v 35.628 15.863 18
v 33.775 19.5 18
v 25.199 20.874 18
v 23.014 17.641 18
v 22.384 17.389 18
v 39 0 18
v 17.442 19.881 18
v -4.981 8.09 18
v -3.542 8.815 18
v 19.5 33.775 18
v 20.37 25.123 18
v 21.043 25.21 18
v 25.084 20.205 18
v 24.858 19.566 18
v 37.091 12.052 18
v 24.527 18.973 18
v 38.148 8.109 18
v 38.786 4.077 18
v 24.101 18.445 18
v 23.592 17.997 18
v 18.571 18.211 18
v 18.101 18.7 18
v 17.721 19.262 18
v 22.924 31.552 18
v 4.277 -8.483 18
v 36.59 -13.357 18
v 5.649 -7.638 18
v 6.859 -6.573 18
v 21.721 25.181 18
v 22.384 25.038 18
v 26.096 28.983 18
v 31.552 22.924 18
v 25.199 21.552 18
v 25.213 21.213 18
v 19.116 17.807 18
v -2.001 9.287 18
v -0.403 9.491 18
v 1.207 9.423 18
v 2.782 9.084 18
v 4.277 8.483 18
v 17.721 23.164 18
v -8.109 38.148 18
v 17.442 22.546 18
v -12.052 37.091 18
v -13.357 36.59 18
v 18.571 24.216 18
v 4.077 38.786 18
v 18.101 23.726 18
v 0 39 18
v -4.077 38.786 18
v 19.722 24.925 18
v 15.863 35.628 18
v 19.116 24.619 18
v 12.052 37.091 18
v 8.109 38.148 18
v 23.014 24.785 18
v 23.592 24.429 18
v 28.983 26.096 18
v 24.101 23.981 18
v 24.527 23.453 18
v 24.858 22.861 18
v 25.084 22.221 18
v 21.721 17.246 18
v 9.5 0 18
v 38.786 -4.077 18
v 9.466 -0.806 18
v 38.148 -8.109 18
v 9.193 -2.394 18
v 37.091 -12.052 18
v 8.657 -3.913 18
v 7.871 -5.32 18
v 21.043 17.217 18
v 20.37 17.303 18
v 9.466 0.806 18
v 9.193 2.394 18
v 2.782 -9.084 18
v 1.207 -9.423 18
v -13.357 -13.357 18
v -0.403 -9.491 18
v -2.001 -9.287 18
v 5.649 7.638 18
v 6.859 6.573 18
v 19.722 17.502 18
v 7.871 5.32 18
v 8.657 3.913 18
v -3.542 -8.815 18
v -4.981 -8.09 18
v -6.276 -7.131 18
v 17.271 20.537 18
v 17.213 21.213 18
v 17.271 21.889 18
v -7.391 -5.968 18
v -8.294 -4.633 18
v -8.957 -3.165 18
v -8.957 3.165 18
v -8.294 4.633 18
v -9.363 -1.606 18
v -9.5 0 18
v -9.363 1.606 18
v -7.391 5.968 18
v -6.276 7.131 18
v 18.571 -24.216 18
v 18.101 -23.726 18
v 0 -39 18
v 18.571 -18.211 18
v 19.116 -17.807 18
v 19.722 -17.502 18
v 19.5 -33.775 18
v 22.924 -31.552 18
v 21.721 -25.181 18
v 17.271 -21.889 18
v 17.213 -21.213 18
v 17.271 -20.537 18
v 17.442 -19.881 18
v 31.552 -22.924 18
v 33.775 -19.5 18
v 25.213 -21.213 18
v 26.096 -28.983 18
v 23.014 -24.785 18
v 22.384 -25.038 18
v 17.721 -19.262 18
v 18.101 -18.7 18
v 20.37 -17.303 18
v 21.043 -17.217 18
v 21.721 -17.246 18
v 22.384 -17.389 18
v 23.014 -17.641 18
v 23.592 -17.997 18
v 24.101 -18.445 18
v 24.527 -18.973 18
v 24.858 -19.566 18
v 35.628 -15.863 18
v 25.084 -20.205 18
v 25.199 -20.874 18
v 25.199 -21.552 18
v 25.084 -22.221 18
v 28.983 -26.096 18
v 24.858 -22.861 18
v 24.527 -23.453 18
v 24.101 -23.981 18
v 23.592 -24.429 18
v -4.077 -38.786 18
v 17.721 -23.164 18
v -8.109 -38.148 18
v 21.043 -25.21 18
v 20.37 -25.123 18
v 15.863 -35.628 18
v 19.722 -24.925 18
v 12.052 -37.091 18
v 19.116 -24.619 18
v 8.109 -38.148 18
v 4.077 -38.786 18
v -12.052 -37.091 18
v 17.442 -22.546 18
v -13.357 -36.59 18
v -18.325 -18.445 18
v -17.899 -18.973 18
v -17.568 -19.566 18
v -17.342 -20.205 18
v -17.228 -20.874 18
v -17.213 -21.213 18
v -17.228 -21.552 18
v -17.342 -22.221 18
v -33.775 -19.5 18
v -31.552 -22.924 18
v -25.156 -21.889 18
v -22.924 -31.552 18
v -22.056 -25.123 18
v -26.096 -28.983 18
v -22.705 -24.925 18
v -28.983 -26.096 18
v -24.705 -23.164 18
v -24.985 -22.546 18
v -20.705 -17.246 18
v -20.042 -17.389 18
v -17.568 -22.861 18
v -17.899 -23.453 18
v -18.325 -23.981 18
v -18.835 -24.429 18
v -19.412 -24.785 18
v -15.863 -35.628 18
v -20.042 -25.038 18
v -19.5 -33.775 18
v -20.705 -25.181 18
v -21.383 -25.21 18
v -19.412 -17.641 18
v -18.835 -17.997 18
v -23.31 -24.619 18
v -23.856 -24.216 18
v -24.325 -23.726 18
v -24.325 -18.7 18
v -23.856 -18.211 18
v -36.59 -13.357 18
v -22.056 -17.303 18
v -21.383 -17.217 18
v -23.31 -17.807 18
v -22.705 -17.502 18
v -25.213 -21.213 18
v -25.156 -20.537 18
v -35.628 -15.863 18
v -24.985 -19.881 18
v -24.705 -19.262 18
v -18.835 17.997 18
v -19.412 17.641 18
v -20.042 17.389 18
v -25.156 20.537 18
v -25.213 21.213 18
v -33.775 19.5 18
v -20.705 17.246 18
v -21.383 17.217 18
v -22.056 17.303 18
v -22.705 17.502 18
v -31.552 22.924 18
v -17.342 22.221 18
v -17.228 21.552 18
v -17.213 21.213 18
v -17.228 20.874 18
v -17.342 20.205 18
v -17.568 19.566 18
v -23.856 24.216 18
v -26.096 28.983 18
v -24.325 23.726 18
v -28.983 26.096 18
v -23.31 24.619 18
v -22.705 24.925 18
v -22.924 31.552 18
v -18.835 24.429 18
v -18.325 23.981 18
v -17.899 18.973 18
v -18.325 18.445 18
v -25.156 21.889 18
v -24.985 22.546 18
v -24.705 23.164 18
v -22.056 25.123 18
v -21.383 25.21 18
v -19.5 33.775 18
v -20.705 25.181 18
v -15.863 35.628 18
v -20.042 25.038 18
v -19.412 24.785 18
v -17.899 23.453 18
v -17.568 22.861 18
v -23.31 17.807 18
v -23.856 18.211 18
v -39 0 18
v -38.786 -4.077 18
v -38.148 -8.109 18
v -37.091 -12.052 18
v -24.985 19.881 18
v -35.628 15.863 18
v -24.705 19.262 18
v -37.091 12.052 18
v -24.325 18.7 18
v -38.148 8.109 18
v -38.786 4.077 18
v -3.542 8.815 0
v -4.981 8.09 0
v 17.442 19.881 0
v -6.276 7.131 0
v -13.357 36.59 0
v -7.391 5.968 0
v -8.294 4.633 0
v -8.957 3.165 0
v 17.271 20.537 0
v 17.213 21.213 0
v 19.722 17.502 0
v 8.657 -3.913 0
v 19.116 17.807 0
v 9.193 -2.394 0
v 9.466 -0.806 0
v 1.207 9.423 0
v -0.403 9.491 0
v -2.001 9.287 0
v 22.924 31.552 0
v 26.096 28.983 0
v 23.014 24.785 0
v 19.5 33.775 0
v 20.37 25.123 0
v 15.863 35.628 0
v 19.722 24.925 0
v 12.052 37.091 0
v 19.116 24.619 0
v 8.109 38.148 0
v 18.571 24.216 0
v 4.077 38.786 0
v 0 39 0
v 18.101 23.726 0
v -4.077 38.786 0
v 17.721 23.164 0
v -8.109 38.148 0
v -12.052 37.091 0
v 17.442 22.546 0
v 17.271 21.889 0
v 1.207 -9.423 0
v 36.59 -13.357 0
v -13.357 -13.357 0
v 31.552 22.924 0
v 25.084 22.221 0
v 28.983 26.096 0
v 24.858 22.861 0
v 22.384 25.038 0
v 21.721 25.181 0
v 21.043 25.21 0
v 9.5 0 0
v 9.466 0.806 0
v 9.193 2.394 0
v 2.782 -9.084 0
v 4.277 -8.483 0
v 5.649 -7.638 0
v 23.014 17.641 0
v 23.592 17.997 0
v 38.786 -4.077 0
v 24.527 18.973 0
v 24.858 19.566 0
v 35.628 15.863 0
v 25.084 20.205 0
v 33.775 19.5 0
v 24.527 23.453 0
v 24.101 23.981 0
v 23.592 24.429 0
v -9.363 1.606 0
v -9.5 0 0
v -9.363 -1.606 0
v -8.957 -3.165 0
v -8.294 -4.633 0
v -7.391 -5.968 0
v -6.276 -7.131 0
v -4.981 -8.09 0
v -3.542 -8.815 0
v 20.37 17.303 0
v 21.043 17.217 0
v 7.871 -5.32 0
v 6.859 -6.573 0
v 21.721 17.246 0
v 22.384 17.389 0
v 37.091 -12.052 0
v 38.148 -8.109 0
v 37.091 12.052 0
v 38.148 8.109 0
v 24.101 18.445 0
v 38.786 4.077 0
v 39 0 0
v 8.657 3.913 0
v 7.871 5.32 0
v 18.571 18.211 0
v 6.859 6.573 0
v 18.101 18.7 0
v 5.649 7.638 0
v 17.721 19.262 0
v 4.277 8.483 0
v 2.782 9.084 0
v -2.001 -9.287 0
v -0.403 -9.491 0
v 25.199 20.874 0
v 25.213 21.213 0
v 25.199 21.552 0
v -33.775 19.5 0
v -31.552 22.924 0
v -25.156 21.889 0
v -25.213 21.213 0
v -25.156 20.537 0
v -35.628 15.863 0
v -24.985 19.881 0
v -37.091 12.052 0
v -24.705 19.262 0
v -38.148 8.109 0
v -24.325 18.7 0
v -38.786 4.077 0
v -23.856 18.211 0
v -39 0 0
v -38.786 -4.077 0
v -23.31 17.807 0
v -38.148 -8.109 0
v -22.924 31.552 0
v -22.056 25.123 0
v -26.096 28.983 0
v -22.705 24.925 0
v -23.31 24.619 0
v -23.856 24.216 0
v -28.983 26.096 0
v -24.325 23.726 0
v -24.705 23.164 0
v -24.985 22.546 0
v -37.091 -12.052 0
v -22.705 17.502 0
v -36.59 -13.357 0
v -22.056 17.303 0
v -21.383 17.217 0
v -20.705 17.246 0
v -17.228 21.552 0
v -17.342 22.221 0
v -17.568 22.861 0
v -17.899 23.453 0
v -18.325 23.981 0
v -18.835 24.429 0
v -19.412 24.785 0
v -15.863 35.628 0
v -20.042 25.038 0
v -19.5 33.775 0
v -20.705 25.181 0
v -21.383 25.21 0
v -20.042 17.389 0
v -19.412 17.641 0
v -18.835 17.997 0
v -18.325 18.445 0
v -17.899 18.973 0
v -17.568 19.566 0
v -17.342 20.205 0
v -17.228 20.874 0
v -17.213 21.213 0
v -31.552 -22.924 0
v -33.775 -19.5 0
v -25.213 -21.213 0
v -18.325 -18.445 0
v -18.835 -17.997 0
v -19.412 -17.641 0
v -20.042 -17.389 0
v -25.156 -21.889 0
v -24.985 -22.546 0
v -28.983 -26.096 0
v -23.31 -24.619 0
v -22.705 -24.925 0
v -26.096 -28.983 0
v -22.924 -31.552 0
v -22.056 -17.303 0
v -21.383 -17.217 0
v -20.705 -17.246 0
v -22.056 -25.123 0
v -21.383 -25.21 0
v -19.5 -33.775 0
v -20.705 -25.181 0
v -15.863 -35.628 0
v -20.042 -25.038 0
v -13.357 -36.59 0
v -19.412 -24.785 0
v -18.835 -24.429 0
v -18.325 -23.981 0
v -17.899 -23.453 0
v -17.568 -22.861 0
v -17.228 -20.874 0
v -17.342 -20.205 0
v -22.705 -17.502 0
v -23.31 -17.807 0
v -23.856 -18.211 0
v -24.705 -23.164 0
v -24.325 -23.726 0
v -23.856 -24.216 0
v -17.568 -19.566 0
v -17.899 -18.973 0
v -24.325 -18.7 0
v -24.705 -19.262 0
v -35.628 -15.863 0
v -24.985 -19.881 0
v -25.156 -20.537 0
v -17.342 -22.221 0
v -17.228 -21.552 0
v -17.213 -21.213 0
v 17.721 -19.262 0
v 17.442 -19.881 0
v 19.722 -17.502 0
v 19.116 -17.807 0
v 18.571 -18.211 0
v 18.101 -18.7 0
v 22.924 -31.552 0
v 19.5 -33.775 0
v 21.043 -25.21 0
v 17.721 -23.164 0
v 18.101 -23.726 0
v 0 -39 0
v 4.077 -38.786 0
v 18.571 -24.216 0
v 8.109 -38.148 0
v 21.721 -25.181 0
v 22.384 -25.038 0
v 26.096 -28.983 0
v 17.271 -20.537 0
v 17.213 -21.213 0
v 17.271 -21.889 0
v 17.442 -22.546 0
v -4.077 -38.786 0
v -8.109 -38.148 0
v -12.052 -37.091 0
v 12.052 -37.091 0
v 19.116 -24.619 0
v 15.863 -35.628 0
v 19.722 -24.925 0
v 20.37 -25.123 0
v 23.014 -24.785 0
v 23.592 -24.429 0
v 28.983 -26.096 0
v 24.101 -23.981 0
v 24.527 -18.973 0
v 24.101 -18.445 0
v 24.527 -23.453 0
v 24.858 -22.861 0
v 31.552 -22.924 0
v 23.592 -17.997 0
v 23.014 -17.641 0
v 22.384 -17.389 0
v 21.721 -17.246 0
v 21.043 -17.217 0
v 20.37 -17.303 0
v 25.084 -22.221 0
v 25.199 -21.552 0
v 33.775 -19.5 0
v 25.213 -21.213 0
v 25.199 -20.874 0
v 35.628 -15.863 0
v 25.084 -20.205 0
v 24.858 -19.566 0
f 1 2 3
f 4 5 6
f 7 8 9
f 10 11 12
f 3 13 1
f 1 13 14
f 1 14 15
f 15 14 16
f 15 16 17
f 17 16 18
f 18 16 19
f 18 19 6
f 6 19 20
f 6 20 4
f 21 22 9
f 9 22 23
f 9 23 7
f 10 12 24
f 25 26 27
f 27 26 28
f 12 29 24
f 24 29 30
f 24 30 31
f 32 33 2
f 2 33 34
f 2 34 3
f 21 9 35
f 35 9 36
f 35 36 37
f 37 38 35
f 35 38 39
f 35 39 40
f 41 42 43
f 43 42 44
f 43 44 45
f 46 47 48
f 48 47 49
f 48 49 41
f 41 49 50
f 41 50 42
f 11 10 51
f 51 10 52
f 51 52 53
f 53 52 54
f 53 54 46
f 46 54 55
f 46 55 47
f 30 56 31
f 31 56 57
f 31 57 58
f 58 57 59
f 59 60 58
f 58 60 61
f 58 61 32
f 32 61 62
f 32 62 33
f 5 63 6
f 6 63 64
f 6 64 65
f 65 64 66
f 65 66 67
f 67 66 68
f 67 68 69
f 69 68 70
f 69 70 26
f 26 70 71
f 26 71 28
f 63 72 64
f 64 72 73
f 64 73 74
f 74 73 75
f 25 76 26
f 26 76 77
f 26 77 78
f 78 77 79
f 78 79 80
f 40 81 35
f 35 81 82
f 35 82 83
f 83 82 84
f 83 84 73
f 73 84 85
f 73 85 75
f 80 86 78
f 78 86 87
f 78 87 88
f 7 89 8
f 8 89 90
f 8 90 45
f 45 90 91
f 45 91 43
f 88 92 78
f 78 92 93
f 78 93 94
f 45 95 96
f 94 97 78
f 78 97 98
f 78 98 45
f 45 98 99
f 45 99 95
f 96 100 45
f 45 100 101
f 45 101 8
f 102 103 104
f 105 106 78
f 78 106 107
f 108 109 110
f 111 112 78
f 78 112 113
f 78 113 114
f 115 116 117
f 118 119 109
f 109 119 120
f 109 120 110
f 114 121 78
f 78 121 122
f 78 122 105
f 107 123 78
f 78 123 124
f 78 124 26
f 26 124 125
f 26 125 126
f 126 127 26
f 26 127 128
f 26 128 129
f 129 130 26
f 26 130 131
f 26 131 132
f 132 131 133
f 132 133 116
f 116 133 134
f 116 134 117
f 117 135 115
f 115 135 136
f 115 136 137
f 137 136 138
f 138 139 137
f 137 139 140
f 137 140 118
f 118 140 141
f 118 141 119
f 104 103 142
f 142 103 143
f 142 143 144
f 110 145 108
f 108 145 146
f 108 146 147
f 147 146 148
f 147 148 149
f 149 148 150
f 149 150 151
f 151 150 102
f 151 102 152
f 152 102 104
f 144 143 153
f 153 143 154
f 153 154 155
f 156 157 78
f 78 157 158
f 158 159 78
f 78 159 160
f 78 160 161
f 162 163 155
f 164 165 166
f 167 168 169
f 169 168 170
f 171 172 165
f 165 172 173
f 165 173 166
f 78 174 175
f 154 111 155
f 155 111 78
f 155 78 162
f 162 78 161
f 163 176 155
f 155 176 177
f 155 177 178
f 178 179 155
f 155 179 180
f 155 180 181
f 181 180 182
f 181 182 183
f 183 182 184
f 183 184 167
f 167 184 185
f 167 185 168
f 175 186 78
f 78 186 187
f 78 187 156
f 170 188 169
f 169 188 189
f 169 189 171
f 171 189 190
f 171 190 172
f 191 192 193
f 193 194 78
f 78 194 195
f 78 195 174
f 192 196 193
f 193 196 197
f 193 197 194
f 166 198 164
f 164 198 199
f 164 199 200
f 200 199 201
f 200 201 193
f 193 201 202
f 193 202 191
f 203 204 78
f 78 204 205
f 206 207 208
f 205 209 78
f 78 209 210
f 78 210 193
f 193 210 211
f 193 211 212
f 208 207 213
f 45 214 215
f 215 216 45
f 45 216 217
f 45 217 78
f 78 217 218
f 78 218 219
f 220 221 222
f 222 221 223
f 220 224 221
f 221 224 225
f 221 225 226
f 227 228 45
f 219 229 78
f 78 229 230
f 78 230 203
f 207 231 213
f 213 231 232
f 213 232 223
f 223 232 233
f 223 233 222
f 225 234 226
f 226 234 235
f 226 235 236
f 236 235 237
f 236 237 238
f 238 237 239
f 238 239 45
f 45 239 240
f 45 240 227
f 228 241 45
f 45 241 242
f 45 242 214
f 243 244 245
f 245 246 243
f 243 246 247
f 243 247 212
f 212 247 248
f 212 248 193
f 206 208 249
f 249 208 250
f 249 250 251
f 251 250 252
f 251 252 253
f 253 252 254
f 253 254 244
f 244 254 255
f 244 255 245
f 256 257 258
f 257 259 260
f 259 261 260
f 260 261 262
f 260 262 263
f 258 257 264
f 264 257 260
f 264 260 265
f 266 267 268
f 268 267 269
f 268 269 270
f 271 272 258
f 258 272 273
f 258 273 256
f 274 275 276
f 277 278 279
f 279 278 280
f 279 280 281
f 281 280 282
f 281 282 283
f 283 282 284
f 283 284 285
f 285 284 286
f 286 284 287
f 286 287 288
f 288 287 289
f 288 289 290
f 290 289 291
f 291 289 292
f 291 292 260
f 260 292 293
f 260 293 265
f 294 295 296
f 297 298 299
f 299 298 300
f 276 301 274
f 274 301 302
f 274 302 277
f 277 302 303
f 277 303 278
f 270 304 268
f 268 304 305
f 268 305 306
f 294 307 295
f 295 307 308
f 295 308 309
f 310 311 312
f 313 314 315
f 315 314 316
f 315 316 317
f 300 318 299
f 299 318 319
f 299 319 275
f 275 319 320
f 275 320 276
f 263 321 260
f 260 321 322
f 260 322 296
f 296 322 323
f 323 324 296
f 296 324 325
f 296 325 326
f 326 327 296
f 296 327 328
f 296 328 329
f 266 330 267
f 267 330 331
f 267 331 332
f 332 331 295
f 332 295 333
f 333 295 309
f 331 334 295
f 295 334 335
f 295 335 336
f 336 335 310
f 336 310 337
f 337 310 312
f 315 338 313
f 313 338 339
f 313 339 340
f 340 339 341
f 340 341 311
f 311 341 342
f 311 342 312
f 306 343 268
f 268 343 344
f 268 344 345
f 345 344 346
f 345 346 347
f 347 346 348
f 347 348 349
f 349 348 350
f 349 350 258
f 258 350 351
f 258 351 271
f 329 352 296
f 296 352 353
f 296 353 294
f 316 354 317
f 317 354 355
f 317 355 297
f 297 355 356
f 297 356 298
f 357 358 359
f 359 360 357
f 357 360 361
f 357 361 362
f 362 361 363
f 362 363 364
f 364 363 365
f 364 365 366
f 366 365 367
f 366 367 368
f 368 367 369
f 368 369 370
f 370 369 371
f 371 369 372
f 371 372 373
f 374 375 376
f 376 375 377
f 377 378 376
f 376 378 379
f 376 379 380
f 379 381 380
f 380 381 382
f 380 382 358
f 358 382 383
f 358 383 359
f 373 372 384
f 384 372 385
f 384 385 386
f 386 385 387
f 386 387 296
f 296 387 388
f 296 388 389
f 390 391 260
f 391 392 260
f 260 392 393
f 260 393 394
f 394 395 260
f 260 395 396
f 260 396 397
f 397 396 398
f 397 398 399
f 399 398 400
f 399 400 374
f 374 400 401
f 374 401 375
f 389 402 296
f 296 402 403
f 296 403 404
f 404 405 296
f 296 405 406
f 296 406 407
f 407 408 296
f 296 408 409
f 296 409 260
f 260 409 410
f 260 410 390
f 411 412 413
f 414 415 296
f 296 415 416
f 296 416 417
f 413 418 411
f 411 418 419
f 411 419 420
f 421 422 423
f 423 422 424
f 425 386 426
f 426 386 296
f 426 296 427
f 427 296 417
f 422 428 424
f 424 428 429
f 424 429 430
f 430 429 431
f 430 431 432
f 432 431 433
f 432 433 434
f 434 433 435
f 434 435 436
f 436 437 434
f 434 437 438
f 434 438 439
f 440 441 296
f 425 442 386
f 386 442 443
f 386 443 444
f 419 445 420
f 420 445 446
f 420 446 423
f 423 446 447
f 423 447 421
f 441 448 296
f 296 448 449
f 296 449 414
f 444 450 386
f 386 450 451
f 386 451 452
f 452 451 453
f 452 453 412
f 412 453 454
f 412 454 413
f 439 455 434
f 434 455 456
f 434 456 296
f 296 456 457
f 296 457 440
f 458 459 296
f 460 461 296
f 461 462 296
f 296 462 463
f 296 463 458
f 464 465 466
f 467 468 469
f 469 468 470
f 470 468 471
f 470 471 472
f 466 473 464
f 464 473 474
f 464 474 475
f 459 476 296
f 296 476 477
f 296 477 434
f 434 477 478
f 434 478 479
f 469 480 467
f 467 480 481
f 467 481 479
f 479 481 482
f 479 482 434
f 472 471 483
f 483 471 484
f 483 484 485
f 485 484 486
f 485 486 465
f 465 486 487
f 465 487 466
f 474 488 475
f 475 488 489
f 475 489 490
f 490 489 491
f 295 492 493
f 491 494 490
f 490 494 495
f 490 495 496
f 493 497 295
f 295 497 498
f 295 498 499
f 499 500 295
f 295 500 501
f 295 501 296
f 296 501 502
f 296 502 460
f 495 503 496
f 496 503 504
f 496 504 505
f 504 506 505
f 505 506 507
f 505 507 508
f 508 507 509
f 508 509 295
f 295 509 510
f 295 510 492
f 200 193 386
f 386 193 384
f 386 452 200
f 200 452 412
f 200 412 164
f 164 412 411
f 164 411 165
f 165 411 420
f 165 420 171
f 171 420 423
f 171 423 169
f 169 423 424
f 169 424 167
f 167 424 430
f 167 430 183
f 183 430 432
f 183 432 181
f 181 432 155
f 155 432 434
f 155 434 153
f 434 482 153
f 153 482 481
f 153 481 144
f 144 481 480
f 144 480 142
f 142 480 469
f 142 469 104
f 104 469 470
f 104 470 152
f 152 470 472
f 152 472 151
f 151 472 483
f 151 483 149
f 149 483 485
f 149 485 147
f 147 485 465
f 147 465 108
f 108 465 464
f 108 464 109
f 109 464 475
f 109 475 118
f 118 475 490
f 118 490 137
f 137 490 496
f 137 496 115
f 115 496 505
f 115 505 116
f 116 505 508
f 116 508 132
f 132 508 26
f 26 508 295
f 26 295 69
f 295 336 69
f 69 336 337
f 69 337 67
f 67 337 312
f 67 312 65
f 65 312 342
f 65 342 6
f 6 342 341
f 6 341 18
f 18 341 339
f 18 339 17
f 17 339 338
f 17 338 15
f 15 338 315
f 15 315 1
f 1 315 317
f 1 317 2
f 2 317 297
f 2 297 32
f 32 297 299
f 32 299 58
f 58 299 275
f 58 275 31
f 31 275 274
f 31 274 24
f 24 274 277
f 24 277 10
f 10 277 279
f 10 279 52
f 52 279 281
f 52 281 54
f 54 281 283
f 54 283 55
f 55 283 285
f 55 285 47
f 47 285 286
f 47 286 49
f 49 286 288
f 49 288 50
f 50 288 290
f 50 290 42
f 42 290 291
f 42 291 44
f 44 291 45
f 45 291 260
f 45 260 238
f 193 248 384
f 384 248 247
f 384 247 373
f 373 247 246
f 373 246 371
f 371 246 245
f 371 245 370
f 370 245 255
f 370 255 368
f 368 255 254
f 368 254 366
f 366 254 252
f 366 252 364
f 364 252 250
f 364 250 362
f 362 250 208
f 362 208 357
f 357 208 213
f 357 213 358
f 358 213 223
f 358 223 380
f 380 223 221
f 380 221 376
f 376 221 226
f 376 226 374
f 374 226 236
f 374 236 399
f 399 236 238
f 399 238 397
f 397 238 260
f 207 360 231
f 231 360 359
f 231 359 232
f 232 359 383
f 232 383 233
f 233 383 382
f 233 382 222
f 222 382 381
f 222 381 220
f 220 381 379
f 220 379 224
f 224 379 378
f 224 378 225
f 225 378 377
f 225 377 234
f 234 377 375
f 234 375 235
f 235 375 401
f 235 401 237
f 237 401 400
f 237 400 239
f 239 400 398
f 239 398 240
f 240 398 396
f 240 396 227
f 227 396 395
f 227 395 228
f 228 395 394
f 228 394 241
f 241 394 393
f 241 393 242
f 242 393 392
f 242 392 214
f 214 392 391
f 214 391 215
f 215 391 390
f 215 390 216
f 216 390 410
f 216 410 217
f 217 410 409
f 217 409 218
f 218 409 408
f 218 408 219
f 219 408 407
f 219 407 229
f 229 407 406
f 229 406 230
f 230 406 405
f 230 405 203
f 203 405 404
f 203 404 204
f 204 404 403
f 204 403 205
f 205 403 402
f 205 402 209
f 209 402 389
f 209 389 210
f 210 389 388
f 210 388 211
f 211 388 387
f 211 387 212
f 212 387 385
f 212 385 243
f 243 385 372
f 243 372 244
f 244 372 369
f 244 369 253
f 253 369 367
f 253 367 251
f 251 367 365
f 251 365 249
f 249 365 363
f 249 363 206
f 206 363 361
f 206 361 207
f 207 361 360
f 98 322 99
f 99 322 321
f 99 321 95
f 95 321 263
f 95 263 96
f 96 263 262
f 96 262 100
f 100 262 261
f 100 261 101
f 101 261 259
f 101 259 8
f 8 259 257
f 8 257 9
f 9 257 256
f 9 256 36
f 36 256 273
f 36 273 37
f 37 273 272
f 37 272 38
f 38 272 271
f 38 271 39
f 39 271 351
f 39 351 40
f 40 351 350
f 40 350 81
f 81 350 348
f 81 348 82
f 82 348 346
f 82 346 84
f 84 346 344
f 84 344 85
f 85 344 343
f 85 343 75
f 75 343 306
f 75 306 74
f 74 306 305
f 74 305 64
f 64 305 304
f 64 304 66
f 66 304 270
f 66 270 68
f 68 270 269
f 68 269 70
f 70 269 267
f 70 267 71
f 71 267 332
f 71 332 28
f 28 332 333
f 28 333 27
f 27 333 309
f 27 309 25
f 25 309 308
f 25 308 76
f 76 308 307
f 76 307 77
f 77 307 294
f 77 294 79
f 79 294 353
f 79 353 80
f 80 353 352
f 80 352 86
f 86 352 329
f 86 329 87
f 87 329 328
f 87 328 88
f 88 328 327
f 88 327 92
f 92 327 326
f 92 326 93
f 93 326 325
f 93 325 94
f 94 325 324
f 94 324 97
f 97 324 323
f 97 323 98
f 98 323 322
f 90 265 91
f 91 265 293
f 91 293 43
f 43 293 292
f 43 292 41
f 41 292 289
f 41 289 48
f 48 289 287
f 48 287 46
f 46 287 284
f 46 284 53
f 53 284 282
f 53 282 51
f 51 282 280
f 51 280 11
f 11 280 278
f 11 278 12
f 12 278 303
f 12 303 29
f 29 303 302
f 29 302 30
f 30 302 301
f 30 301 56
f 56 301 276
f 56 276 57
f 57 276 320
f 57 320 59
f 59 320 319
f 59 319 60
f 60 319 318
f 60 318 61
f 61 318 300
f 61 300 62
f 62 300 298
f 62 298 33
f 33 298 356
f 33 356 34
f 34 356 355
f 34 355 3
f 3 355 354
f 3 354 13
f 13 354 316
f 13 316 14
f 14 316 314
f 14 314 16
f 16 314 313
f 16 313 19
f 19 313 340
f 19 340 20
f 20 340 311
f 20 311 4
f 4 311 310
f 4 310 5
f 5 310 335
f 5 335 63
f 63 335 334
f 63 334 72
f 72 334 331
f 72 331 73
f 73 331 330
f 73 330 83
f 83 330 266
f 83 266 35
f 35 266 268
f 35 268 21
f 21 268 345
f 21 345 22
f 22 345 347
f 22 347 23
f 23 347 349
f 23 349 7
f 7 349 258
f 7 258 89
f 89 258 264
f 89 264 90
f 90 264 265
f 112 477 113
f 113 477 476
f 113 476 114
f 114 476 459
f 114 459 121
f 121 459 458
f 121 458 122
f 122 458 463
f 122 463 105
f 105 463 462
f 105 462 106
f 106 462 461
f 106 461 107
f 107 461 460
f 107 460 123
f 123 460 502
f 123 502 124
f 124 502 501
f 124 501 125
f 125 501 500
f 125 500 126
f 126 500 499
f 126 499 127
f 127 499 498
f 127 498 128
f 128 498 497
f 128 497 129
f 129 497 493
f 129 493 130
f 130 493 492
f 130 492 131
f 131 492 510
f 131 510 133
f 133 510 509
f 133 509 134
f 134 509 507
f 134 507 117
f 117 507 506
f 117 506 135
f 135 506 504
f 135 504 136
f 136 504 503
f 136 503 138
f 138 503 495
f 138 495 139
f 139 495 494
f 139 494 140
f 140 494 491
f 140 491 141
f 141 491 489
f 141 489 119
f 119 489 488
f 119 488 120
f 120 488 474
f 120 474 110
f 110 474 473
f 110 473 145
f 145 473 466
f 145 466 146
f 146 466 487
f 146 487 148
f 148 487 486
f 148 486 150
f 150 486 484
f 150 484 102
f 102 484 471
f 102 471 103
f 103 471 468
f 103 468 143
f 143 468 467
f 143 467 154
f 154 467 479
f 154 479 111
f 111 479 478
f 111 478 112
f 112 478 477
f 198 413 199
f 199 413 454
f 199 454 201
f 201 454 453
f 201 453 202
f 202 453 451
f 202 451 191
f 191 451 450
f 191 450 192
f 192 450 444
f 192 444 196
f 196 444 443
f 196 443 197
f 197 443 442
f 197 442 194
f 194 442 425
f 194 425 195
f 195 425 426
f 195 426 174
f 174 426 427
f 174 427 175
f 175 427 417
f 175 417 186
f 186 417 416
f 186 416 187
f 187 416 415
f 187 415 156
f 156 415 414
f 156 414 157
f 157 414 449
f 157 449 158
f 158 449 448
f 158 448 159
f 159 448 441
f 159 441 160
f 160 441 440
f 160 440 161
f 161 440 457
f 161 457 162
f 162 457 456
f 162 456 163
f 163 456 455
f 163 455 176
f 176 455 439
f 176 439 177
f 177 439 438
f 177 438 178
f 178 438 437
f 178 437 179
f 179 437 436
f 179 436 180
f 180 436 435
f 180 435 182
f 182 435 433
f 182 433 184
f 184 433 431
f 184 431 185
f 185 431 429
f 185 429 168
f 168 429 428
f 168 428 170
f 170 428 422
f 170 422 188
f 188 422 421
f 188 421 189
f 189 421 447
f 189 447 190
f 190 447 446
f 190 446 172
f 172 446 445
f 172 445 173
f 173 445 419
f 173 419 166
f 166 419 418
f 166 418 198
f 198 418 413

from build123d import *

# Parameters (mm, degrees)
SKETCH1_R           = 39
SKETCH1_R_2         = 4
SKETCH1_R_3         = 9.5
BOSS_EXTRUDE1_DEPTH = 18


with BuildPart() as part:
    # Sketch1 → Boss-Extrude1 (new body)
    with BuildSketch(Plane.XY):
        Circle(SKETCH1_R)
        with Locations((-21.213203436, 21.213203436)):
            Circle(SKETCH1_R_2, mode=Mode.SUBTRACT)
        with Locations((21.213203436, 21.213203436)):
            Circle(SKETCH1_R_2, mode=Mode.SUBTRACT)
        with Locations((21.213203436, -21.213203436)):
            Circle(SKETCH1_R_2, mode=Mode.SUBTRACT)
        with Locations((-21.213203436, -21.213203436)):
            Circle(SKETCH1_R_2, mode=Mode.SUBTRACT)
        Circle(SKETCH1_R_3, mode=Mode.SUBTRACT)
    extrude(amount=BOSS_EXTRUDE1_DEPTH)


solid = part.part
